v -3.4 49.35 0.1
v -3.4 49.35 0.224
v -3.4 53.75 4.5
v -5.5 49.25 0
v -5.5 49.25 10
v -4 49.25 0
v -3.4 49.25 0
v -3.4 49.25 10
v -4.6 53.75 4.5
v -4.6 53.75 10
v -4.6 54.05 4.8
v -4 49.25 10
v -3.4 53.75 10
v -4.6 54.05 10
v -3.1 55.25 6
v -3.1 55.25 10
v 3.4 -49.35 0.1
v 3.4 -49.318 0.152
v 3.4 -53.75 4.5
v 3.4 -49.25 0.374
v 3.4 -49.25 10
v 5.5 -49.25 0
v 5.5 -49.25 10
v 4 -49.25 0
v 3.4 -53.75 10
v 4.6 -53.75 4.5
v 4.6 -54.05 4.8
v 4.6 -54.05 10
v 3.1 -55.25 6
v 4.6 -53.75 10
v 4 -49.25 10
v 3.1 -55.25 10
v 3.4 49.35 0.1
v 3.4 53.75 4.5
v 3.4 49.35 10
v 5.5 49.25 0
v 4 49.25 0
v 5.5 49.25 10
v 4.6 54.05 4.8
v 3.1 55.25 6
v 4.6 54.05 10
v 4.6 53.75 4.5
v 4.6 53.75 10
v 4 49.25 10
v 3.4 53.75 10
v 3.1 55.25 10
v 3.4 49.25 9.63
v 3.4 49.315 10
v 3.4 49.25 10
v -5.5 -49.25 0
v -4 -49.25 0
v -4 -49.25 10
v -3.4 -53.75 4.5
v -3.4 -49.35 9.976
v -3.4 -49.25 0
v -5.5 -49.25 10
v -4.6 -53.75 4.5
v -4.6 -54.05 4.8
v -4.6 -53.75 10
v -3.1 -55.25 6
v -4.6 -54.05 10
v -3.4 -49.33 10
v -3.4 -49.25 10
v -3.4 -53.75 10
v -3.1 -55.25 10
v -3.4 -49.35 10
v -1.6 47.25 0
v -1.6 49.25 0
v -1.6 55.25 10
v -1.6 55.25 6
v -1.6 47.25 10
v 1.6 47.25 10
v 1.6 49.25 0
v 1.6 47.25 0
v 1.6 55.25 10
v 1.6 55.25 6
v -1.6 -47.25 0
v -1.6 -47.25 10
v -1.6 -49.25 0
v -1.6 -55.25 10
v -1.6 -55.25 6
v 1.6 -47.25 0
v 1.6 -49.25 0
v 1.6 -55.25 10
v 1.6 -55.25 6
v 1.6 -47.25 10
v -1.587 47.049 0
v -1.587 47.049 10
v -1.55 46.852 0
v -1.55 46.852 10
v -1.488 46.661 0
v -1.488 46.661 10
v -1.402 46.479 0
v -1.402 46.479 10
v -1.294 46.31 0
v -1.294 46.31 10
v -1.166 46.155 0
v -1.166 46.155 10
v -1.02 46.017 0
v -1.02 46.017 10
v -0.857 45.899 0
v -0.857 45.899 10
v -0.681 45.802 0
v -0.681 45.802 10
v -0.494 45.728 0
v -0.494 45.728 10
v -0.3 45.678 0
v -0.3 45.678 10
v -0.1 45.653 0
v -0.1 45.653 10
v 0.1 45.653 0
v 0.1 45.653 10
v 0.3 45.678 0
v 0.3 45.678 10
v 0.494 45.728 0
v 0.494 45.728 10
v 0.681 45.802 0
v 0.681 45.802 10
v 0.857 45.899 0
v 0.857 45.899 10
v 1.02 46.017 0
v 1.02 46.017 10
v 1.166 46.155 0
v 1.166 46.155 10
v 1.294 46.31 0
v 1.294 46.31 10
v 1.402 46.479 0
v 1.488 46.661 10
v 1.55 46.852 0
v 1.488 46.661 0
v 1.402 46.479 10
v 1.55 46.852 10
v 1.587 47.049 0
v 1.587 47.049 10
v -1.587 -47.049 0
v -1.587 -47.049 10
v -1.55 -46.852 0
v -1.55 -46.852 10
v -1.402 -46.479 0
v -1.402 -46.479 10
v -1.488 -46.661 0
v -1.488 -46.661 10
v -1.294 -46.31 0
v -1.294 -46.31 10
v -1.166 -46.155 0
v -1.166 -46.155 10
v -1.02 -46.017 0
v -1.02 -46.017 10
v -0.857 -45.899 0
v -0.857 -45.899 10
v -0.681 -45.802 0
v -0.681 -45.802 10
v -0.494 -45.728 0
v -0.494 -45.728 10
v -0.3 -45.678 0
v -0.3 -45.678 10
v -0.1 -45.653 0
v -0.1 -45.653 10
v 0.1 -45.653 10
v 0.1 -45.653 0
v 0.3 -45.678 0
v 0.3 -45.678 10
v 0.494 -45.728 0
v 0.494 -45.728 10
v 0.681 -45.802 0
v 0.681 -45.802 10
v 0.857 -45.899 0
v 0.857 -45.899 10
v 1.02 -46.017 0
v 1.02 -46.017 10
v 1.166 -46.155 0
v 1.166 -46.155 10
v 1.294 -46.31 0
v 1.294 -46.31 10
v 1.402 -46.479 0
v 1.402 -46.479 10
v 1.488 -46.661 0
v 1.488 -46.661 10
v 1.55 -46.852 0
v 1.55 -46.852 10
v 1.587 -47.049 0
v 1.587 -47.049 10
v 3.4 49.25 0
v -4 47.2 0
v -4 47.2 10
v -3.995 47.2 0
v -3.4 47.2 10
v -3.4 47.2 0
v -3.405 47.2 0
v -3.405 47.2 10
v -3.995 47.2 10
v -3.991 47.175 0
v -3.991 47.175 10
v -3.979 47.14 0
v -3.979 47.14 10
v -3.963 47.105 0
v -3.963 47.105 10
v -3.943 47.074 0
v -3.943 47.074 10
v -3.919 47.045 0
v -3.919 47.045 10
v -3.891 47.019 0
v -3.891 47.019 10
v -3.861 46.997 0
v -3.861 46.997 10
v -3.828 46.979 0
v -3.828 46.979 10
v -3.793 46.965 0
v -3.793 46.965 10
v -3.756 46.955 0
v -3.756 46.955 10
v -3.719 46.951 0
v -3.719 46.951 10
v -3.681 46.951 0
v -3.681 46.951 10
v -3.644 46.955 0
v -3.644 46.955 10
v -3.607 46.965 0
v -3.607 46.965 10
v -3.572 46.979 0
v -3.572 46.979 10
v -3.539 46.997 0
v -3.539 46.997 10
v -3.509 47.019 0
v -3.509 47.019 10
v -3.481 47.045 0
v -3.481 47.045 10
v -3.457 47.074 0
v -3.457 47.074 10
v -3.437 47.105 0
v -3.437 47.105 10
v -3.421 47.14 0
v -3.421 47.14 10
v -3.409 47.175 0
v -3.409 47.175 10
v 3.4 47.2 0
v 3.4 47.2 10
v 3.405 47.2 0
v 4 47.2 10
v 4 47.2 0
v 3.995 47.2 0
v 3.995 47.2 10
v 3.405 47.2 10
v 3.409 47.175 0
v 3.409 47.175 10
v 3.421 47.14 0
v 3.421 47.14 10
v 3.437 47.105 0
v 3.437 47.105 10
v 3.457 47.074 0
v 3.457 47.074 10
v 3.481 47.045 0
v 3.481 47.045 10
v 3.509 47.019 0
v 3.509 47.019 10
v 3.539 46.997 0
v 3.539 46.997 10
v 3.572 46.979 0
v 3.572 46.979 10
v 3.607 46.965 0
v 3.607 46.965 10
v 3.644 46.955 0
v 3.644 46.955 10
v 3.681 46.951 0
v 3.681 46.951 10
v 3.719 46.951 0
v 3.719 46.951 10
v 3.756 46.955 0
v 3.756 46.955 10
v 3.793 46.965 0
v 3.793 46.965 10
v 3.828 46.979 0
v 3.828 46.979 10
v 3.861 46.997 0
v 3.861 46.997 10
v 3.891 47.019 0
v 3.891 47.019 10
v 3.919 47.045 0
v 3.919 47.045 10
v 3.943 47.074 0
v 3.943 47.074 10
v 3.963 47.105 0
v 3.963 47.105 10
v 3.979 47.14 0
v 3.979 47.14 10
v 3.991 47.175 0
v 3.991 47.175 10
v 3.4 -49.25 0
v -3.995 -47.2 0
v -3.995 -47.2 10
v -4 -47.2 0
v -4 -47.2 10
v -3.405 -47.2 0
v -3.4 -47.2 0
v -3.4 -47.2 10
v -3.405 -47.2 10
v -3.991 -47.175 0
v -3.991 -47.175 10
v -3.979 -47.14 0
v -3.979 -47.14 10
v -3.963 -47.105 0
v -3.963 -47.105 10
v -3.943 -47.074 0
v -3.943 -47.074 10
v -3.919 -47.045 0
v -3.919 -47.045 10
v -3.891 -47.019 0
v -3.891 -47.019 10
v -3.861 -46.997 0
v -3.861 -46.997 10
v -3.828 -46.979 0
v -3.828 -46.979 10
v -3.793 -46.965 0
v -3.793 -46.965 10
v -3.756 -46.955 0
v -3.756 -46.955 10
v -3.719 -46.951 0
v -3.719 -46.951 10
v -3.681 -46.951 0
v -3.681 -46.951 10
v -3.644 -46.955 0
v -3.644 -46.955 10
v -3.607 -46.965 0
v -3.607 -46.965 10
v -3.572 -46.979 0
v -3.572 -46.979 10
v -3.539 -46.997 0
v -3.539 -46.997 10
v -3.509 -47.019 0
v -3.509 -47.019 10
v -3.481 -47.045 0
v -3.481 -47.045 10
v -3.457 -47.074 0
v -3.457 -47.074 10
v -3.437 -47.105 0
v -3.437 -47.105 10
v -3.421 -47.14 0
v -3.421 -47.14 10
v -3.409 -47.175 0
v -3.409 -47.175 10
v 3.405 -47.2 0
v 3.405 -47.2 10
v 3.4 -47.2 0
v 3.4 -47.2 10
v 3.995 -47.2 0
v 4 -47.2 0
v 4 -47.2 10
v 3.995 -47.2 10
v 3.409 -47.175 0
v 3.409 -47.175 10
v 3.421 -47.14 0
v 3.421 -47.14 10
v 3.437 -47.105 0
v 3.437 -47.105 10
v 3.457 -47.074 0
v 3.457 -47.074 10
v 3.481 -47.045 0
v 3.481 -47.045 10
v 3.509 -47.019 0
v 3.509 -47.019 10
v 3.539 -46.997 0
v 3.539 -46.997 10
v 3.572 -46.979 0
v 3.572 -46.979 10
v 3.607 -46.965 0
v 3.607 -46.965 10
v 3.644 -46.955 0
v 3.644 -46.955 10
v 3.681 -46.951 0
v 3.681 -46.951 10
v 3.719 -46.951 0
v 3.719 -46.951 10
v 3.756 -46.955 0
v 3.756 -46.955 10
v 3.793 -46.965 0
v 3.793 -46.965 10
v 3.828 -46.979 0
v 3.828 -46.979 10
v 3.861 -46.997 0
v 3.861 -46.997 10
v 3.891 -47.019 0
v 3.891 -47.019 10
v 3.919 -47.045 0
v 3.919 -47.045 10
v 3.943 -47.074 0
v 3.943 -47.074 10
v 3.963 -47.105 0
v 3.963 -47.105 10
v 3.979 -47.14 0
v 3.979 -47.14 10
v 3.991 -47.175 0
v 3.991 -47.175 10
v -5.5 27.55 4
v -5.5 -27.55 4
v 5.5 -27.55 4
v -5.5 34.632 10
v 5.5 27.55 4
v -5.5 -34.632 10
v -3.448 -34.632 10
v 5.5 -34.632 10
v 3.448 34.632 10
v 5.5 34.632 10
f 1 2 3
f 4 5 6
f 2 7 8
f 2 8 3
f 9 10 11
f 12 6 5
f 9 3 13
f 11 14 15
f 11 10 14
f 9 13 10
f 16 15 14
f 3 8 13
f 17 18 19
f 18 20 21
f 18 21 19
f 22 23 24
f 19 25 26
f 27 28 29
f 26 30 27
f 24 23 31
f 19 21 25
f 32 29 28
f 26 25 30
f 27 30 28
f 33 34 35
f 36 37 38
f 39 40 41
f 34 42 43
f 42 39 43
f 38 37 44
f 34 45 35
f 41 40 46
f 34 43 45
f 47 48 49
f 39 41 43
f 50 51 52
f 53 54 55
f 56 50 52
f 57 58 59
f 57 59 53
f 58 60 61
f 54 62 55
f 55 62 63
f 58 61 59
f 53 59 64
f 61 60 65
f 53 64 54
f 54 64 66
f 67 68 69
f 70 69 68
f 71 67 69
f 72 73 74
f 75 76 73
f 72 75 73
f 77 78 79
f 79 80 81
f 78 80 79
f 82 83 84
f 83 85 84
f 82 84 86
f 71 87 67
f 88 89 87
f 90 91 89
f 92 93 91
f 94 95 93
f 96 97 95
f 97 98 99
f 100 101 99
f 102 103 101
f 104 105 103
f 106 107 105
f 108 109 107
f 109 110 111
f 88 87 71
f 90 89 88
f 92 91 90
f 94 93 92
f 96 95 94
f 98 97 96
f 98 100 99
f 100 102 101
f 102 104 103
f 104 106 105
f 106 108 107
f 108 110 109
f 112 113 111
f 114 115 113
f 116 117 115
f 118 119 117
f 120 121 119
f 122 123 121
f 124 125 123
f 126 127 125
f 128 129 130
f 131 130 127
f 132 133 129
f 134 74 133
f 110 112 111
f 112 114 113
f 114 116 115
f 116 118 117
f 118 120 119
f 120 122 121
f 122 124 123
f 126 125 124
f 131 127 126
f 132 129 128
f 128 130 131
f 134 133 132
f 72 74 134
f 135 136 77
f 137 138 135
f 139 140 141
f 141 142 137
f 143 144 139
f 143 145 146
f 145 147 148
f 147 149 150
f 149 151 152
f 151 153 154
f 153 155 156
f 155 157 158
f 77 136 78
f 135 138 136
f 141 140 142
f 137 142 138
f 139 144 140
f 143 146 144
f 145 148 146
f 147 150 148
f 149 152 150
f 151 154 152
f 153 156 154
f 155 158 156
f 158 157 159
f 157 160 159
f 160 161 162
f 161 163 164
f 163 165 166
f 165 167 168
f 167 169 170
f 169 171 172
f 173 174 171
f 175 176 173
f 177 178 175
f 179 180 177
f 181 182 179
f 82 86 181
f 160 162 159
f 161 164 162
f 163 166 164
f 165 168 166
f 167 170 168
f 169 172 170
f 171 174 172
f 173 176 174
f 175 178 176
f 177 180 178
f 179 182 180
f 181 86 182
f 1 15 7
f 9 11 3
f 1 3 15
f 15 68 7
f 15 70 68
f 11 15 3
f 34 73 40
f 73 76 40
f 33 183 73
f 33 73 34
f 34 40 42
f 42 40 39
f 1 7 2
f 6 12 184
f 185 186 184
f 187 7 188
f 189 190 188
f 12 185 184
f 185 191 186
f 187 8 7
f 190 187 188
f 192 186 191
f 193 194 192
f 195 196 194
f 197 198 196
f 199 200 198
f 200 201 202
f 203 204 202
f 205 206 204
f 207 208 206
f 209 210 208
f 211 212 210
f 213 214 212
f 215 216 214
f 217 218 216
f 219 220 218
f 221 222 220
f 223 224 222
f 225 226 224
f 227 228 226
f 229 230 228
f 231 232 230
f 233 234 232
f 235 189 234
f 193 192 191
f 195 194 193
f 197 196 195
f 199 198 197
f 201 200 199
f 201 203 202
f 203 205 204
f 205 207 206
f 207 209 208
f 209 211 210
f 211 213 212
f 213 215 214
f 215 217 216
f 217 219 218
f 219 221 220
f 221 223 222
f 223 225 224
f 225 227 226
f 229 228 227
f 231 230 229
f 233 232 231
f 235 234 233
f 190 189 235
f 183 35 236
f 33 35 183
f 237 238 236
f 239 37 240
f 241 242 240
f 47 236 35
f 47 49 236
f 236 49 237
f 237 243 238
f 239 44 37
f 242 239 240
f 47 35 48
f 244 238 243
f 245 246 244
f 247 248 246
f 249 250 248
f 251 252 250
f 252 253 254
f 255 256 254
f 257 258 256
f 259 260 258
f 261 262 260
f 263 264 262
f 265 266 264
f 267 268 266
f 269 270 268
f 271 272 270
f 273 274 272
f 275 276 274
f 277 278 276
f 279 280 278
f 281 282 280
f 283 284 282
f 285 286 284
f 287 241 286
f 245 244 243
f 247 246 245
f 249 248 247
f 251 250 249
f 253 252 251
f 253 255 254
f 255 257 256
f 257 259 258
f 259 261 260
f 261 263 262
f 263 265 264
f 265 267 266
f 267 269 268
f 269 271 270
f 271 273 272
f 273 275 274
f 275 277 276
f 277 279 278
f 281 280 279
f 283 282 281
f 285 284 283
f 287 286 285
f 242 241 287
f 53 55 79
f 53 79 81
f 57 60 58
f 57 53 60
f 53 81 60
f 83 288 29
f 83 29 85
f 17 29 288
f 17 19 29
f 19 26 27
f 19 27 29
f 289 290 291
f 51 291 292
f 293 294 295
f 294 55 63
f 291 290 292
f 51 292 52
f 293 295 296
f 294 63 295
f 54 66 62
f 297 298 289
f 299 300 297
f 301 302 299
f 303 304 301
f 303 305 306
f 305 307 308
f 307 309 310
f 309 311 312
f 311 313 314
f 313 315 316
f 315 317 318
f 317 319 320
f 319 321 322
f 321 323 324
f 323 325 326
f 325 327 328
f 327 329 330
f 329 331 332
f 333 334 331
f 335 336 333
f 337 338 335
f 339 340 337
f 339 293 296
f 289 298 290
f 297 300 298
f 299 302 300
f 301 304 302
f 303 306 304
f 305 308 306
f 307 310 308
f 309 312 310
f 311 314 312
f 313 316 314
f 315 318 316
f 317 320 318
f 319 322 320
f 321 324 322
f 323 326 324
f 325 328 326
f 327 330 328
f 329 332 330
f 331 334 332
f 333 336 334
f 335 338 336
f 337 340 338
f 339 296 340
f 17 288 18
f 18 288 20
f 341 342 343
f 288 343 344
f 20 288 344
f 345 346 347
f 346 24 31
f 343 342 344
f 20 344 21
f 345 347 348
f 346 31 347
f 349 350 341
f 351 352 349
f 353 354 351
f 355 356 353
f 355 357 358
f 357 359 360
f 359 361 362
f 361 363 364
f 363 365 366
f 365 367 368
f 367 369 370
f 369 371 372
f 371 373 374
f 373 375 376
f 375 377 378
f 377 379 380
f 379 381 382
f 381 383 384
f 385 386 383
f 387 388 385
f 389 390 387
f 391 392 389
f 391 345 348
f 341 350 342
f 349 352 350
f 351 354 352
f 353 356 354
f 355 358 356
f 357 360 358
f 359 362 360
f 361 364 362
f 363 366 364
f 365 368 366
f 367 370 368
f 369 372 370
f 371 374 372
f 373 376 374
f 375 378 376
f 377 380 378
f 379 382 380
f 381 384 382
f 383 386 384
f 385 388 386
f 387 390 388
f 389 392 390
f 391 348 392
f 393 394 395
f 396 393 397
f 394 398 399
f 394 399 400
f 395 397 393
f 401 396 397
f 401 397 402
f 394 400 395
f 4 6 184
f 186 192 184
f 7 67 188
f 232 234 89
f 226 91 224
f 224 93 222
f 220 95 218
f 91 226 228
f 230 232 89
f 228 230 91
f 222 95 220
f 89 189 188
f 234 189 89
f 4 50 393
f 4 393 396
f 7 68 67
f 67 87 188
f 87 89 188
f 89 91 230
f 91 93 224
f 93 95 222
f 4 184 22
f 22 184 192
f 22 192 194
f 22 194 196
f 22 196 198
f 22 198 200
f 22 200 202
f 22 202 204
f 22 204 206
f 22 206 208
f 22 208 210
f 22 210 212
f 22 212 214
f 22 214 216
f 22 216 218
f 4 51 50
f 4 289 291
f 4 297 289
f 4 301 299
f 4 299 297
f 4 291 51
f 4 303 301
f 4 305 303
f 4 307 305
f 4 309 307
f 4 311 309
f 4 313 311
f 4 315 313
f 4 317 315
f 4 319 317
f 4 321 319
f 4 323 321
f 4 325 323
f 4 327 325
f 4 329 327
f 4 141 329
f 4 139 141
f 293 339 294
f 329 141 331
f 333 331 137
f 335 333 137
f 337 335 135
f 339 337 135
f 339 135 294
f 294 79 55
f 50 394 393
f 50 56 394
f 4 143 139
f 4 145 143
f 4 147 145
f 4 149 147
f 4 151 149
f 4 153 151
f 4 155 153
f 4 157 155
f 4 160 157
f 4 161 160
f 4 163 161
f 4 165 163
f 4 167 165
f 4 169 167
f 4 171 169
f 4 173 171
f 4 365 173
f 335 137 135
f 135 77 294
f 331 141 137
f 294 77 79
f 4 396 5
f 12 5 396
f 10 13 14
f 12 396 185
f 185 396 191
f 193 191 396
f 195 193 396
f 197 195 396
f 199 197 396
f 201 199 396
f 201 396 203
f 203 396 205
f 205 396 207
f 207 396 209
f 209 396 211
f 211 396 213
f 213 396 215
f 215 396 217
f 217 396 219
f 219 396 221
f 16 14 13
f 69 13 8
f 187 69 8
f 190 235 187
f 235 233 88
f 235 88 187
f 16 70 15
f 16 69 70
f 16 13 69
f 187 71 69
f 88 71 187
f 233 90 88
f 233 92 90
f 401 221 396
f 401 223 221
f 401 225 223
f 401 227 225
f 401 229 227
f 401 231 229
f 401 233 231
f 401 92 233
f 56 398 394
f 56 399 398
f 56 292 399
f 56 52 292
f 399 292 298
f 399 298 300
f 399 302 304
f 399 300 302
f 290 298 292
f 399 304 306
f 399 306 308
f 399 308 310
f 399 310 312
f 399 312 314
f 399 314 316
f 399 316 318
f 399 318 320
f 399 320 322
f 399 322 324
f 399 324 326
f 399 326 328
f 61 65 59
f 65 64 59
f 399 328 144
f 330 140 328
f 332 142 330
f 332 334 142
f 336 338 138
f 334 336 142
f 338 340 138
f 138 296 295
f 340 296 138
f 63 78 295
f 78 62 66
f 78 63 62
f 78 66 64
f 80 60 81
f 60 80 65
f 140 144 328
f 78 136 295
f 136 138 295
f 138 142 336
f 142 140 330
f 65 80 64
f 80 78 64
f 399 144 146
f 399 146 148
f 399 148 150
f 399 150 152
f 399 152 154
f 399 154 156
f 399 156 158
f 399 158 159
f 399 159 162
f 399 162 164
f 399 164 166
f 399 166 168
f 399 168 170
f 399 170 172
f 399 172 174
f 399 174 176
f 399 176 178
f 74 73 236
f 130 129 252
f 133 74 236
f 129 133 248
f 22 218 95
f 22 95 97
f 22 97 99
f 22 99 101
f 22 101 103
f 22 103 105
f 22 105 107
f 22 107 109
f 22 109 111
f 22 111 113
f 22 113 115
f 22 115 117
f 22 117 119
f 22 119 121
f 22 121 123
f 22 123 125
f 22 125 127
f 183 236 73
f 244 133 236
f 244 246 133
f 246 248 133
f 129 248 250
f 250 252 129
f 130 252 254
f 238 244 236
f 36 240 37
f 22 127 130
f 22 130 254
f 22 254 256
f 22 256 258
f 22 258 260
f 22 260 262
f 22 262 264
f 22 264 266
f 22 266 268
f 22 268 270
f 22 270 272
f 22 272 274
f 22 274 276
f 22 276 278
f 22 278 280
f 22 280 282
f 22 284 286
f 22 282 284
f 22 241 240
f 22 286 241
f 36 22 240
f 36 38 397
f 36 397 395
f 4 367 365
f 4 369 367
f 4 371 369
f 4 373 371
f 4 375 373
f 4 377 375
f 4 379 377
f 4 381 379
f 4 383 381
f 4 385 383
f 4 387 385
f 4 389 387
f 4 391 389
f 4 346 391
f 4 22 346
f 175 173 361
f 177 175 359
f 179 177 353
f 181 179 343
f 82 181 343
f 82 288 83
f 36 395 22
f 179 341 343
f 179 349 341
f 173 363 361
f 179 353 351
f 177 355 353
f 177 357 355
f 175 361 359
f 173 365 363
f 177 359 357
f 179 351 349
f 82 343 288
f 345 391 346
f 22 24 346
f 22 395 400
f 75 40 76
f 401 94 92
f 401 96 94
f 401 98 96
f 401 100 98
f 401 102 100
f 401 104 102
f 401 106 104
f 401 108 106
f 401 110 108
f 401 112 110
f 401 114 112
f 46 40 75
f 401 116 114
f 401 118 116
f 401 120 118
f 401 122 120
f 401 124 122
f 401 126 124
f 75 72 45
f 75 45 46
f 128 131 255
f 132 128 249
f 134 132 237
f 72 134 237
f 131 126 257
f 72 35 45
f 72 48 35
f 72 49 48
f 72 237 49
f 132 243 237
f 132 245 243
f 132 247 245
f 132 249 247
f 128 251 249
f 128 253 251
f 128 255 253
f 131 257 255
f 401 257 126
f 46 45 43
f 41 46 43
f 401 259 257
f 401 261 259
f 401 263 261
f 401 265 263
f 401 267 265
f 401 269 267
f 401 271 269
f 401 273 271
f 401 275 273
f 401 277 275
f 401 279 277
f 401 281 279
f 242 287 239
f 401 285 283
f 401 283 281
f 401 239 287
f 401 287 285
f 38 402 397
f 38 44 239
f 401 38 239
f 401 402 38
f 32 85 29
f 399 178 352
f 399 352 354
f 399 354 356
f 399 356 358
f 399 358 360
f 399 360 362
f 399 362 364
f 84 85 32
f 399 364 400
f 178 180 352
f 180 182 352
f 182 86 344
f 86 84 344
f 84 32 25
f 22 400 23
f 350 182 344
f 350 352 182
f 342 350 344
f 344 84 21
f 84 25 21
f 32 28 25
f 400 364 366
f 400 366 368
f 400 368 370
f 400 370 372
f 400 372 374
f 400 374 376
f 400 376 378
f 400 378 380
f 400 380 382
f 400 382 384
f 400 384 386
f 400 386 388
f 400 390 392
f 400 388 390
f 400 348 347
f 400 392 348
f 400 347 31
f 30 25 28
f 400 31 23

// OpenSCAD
$fn = 50;

difference() {
	union() {
		translate(v = [0, 49.25, 0]) {
			rotate(a = [90, 0, 0]) {
				difference() {
					union() {
						translate(v = [-5.5, 0, -6.0]) {
							cube(size = [11.0, 10.0, 110.5]);
						}
					}
					union() {
						translate(v = [0, 0, 0]) {
							rotate(a = [0, 0, 0]) {
								difference() {
									union() {
										translate(v = [0, 10.1, 0]) {
											rotate(a = [90, 0, 0]) {
												linear_extrude(height = 10.2) {
													polygon(points = [[-3.1, -6.1], [-3.1, -6.0], [-4.6, -4.8], [-4.6, -4.5], [-3.4, -4.5], [-3.4, 0], [-5.6, 0], [-5.6, -6.1]]);
												}
											}
										}
										translate(v = [0, 10.1, 0]) {
											rotate(a = [90, 0, 0]) {
												linear_extrude(height = 10.2) {
													polygon(points = [[3.1, -6.1], [3.1, -6.0], [4.6, -4.8], [4.6, -4.5], [3.4, -4.5], [3.4, 0], [5.6, 0], [5.6, -6.1]]);
												}
											}
										}
										translate(v = [-1.5999999999999999, -0.1, -6.1]) {
											cube(size = [3.1999999999999997, 10.2, 8.1]);
										}
										translate(v = [0, 10.1, 2.0]) {
											rotate(a = [90, 0, 0]) {
												cylinder(h = 10.2, r = 1.5999999999999999);
											}
										}
									}
									union();
								}
							}
						}
						translate(v = [0, 0, 98.5]) {
							rotate(a = [0, 180, 0]) {
								difference() {
									union() {
										translate(v = [0, 10.1, 0]) {
											rotate(a = [90, 0, 0]) {
												linear_extrude(height = 10.2) {
													polygon(points = [[-3.1, -6.1], [-3.1, -6.0], [-4.6, -4.8], [-4.6, -4.5], [-3.4, -4.5], [-3.4, 0], [-5.6, 0], [-5.6, -6.1]]);
												}
											}
										}
										translate(v = [0, 10.1, 0]) {
											rotate(a = [90, 0, 0]) {
												linear_extrude(height = 10.2) {
													polygon(points = [[3.1, -6.1], [3.1, -6.0], [4.6, -4.8], [4.6, -4.5], [3.4, -4.5], [3.4, 0], [5.6, 0], [5.6, -6.1]]);
												}
											}
										}
										translate(v = [-1.5999999999999999, -0.1, -6.1]) {
											cube(size = [3.1999999999999997, 10.2, 8.1]);
										}
										translate(v = [0, 10.1, 2.0]) {
											rotate(a = [90, 0, 0]) {
												cylinder(h = 10.2, r = 1.5999999999999999);
											}
										}
									}
									union();
								}
							}
						}
						translate(v = [-5.6, 0, 0]) {
							rotate(a = [90, 0, 90]) {
								linear_extrude(height = 11.2) {
									polygon(points = [[-0.1, -6.1], [6.1, -6.1], [0, 0.0], [-0.1, 0.0]]);
								}
							}
						}
						translate(v = [0, 10.1, 0]) {
							rotate(a = [90, 0, 0]) {
								linear_extrude(height = 10.2) {
									polygon(points = [[-3.4, -0.1], [-4.0, -0.1], [-4.0, 2.05], [-3.4, 2.05]]);
								}
							}
						}
						translate(v = [-3.6999999999999997, 10.1, 2.0]) {
							rotate(a = [90, 0, 0]) {
								cylinder(h = 10.2, r = 0.3);
							}
						}
						translate(v = [0, 10.1, 0]) {
							rotate(a = [90, 0, 0]) {
								linear_extrude(height = 10.2) {
									polygon(points = [[3.4, -0.1], [4.0, -0.1], [4.0, 2.05], [3.4, 2.05]]);
								}
							}
						}
						translate(v = [3.6999999999999997, 10.1, 2.0]) {
							rotate(a = [90, 0, 0]) {
								cylinder(h = 10.2, r = 0.3);
							}
						}
						translate(v = [-5.6, 0, 0]) {
							rotate(a = [90, 0, 90]) {
								linear_extrude(height = 11.2) {
									polygon(points = [[-0.1, 104.6], [6.1, 104.6], [0, 98.5], [-0.1, 98.5]]);
								}
							}
						}
						translate(v = [0, 10.1, 0]) {
							rotate(a = [90, 0, 0]) {
								linear_extrude(height = 10.2) {
									polygon(points = [[-3.4, 98.6], [-4.0, 98.6], [-4.0, 96.45], [-3.4, 96.45]]);
								}
							}
						}
						translate(v = [-3.6999999999999997, 10.1, 96.5]) {
							rotate(a = [90, 0, 0]) {
								cylinder(h = 10.2, r = 0.3);
							}
						}
						translate(v = [0, 10.1, 0]) {
							rotate(a = [90, 0, 0]) {
								linear_extrude(height = 10.2) {
									polygon(points = [[3.4, 98.6], [4.0, 98.6], [4.0, 96.45], [3.4, 96.45]]);
								}
							}
						}
						translate(v = [3.6999999999999997, 10.1, 96.5]) {
							rotate(a = [90, 0, 0]) {
								cylinder(h = 10.2, r = 0.3);
							}
						}
						translate(v = [-5.6, 0, 0]) {
							rotate(a = [90, 0, 90]) {
								linear_extrude(height = 11.2) {
									polygon(points = [[10.1, 14.5], [10.1, 84.0], [4.0, 76.8], [4.0, 21.7]]);
								}
							}
						}
					}
				}
			}
		}
	}
	union();
}
